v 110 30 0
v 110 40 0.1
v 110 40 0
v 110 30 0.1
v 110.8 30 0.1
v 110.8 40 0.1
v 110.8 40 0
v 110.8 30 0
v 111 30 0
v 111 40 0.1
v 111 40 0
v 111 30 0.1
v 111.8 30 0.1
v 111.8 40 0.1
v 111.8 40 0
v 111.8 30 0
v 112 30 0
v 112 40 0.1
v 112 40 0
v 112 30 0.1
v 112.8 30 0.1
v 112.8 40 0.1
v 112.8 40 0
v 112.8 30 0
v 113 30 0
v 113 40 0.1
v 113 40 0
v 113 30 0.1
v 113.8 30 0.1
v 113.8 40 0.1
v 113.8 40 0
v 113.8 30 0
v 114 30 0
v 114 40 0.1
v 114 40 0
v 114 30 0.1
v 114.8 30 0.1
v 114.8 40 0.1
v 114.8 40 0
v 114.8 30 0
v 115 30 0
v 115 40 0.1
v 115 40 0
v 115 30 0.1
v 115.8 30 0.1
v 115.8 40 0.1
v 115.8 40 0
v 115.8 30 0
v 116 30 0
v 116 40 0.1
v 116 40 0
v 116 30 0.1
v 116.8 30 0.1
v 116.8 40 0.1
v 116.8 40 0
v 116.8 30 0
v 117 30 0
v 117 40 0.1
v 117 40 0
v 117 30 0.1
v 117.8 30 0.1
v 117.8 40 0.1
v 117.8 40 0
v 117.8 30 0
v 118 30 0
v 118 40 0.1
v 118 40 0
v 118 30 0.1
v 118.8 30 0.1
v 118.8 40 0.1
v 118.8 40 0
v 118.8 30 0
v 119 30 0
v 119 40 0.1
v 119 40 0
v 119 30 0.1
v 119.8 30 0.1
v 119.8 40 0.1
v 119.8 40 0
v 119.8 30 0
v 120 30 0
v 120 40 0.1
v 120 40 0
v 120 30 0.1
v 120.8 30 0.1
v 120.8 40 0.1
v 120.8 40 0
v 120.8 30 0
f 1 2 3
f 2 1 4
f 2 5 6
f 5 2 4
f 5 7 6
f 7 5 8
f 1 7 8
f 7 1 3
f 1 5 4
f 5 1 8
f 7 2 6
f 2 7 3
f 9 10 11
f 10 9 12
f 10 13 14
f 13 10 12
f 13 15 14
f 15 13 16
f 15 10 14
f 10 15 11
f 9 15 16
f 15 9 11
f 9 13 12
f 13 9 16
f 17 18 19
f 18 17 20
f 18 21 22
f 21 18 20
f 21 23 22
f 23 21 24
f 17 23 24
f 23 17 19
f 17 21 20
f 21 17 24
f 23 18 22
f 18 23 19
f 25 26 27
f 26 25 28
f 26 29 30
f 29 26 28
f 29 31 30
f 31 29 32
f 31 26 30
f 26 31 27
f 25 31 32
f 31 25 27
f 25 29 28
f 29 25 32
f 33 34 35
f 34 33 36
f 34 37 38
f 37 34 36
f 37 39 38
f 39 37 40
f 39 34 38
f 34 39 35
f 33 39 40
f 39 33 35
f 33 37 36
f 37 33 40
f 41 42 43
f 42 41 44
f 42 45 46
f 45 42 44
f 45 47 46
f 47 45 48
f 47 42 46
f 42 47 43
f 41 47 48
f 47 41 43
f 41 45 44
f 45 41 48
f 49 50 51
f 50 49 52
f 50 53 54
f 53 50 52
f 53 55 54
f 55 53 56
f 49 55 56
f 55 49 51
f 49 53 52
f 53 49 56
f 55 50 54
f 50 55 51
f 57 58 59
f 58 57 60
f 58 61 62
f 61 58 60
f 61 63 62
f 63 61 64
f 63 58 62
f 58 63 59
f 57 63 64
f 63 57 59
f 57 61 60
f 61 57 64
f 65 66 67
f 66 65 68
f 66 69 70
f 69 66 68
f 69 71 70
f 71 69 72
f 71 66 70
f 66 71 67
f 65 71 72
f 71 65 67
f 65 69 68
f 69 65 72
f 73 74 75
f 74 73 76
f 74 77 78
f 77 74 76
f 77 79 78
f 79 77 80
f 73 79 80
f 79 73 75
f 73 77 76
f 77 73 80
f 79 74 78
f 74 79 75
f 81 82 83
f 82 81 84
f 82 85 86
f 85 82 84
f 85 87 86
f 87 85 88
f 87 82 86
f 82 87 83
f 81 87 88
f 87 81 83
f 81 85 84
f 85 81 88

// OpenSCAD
translate([10+100,10+20,0])
        for (i = [0 : 10]){
            translate([i,0,0])
                cube(size = [0.8,10,0.1]);
    }
